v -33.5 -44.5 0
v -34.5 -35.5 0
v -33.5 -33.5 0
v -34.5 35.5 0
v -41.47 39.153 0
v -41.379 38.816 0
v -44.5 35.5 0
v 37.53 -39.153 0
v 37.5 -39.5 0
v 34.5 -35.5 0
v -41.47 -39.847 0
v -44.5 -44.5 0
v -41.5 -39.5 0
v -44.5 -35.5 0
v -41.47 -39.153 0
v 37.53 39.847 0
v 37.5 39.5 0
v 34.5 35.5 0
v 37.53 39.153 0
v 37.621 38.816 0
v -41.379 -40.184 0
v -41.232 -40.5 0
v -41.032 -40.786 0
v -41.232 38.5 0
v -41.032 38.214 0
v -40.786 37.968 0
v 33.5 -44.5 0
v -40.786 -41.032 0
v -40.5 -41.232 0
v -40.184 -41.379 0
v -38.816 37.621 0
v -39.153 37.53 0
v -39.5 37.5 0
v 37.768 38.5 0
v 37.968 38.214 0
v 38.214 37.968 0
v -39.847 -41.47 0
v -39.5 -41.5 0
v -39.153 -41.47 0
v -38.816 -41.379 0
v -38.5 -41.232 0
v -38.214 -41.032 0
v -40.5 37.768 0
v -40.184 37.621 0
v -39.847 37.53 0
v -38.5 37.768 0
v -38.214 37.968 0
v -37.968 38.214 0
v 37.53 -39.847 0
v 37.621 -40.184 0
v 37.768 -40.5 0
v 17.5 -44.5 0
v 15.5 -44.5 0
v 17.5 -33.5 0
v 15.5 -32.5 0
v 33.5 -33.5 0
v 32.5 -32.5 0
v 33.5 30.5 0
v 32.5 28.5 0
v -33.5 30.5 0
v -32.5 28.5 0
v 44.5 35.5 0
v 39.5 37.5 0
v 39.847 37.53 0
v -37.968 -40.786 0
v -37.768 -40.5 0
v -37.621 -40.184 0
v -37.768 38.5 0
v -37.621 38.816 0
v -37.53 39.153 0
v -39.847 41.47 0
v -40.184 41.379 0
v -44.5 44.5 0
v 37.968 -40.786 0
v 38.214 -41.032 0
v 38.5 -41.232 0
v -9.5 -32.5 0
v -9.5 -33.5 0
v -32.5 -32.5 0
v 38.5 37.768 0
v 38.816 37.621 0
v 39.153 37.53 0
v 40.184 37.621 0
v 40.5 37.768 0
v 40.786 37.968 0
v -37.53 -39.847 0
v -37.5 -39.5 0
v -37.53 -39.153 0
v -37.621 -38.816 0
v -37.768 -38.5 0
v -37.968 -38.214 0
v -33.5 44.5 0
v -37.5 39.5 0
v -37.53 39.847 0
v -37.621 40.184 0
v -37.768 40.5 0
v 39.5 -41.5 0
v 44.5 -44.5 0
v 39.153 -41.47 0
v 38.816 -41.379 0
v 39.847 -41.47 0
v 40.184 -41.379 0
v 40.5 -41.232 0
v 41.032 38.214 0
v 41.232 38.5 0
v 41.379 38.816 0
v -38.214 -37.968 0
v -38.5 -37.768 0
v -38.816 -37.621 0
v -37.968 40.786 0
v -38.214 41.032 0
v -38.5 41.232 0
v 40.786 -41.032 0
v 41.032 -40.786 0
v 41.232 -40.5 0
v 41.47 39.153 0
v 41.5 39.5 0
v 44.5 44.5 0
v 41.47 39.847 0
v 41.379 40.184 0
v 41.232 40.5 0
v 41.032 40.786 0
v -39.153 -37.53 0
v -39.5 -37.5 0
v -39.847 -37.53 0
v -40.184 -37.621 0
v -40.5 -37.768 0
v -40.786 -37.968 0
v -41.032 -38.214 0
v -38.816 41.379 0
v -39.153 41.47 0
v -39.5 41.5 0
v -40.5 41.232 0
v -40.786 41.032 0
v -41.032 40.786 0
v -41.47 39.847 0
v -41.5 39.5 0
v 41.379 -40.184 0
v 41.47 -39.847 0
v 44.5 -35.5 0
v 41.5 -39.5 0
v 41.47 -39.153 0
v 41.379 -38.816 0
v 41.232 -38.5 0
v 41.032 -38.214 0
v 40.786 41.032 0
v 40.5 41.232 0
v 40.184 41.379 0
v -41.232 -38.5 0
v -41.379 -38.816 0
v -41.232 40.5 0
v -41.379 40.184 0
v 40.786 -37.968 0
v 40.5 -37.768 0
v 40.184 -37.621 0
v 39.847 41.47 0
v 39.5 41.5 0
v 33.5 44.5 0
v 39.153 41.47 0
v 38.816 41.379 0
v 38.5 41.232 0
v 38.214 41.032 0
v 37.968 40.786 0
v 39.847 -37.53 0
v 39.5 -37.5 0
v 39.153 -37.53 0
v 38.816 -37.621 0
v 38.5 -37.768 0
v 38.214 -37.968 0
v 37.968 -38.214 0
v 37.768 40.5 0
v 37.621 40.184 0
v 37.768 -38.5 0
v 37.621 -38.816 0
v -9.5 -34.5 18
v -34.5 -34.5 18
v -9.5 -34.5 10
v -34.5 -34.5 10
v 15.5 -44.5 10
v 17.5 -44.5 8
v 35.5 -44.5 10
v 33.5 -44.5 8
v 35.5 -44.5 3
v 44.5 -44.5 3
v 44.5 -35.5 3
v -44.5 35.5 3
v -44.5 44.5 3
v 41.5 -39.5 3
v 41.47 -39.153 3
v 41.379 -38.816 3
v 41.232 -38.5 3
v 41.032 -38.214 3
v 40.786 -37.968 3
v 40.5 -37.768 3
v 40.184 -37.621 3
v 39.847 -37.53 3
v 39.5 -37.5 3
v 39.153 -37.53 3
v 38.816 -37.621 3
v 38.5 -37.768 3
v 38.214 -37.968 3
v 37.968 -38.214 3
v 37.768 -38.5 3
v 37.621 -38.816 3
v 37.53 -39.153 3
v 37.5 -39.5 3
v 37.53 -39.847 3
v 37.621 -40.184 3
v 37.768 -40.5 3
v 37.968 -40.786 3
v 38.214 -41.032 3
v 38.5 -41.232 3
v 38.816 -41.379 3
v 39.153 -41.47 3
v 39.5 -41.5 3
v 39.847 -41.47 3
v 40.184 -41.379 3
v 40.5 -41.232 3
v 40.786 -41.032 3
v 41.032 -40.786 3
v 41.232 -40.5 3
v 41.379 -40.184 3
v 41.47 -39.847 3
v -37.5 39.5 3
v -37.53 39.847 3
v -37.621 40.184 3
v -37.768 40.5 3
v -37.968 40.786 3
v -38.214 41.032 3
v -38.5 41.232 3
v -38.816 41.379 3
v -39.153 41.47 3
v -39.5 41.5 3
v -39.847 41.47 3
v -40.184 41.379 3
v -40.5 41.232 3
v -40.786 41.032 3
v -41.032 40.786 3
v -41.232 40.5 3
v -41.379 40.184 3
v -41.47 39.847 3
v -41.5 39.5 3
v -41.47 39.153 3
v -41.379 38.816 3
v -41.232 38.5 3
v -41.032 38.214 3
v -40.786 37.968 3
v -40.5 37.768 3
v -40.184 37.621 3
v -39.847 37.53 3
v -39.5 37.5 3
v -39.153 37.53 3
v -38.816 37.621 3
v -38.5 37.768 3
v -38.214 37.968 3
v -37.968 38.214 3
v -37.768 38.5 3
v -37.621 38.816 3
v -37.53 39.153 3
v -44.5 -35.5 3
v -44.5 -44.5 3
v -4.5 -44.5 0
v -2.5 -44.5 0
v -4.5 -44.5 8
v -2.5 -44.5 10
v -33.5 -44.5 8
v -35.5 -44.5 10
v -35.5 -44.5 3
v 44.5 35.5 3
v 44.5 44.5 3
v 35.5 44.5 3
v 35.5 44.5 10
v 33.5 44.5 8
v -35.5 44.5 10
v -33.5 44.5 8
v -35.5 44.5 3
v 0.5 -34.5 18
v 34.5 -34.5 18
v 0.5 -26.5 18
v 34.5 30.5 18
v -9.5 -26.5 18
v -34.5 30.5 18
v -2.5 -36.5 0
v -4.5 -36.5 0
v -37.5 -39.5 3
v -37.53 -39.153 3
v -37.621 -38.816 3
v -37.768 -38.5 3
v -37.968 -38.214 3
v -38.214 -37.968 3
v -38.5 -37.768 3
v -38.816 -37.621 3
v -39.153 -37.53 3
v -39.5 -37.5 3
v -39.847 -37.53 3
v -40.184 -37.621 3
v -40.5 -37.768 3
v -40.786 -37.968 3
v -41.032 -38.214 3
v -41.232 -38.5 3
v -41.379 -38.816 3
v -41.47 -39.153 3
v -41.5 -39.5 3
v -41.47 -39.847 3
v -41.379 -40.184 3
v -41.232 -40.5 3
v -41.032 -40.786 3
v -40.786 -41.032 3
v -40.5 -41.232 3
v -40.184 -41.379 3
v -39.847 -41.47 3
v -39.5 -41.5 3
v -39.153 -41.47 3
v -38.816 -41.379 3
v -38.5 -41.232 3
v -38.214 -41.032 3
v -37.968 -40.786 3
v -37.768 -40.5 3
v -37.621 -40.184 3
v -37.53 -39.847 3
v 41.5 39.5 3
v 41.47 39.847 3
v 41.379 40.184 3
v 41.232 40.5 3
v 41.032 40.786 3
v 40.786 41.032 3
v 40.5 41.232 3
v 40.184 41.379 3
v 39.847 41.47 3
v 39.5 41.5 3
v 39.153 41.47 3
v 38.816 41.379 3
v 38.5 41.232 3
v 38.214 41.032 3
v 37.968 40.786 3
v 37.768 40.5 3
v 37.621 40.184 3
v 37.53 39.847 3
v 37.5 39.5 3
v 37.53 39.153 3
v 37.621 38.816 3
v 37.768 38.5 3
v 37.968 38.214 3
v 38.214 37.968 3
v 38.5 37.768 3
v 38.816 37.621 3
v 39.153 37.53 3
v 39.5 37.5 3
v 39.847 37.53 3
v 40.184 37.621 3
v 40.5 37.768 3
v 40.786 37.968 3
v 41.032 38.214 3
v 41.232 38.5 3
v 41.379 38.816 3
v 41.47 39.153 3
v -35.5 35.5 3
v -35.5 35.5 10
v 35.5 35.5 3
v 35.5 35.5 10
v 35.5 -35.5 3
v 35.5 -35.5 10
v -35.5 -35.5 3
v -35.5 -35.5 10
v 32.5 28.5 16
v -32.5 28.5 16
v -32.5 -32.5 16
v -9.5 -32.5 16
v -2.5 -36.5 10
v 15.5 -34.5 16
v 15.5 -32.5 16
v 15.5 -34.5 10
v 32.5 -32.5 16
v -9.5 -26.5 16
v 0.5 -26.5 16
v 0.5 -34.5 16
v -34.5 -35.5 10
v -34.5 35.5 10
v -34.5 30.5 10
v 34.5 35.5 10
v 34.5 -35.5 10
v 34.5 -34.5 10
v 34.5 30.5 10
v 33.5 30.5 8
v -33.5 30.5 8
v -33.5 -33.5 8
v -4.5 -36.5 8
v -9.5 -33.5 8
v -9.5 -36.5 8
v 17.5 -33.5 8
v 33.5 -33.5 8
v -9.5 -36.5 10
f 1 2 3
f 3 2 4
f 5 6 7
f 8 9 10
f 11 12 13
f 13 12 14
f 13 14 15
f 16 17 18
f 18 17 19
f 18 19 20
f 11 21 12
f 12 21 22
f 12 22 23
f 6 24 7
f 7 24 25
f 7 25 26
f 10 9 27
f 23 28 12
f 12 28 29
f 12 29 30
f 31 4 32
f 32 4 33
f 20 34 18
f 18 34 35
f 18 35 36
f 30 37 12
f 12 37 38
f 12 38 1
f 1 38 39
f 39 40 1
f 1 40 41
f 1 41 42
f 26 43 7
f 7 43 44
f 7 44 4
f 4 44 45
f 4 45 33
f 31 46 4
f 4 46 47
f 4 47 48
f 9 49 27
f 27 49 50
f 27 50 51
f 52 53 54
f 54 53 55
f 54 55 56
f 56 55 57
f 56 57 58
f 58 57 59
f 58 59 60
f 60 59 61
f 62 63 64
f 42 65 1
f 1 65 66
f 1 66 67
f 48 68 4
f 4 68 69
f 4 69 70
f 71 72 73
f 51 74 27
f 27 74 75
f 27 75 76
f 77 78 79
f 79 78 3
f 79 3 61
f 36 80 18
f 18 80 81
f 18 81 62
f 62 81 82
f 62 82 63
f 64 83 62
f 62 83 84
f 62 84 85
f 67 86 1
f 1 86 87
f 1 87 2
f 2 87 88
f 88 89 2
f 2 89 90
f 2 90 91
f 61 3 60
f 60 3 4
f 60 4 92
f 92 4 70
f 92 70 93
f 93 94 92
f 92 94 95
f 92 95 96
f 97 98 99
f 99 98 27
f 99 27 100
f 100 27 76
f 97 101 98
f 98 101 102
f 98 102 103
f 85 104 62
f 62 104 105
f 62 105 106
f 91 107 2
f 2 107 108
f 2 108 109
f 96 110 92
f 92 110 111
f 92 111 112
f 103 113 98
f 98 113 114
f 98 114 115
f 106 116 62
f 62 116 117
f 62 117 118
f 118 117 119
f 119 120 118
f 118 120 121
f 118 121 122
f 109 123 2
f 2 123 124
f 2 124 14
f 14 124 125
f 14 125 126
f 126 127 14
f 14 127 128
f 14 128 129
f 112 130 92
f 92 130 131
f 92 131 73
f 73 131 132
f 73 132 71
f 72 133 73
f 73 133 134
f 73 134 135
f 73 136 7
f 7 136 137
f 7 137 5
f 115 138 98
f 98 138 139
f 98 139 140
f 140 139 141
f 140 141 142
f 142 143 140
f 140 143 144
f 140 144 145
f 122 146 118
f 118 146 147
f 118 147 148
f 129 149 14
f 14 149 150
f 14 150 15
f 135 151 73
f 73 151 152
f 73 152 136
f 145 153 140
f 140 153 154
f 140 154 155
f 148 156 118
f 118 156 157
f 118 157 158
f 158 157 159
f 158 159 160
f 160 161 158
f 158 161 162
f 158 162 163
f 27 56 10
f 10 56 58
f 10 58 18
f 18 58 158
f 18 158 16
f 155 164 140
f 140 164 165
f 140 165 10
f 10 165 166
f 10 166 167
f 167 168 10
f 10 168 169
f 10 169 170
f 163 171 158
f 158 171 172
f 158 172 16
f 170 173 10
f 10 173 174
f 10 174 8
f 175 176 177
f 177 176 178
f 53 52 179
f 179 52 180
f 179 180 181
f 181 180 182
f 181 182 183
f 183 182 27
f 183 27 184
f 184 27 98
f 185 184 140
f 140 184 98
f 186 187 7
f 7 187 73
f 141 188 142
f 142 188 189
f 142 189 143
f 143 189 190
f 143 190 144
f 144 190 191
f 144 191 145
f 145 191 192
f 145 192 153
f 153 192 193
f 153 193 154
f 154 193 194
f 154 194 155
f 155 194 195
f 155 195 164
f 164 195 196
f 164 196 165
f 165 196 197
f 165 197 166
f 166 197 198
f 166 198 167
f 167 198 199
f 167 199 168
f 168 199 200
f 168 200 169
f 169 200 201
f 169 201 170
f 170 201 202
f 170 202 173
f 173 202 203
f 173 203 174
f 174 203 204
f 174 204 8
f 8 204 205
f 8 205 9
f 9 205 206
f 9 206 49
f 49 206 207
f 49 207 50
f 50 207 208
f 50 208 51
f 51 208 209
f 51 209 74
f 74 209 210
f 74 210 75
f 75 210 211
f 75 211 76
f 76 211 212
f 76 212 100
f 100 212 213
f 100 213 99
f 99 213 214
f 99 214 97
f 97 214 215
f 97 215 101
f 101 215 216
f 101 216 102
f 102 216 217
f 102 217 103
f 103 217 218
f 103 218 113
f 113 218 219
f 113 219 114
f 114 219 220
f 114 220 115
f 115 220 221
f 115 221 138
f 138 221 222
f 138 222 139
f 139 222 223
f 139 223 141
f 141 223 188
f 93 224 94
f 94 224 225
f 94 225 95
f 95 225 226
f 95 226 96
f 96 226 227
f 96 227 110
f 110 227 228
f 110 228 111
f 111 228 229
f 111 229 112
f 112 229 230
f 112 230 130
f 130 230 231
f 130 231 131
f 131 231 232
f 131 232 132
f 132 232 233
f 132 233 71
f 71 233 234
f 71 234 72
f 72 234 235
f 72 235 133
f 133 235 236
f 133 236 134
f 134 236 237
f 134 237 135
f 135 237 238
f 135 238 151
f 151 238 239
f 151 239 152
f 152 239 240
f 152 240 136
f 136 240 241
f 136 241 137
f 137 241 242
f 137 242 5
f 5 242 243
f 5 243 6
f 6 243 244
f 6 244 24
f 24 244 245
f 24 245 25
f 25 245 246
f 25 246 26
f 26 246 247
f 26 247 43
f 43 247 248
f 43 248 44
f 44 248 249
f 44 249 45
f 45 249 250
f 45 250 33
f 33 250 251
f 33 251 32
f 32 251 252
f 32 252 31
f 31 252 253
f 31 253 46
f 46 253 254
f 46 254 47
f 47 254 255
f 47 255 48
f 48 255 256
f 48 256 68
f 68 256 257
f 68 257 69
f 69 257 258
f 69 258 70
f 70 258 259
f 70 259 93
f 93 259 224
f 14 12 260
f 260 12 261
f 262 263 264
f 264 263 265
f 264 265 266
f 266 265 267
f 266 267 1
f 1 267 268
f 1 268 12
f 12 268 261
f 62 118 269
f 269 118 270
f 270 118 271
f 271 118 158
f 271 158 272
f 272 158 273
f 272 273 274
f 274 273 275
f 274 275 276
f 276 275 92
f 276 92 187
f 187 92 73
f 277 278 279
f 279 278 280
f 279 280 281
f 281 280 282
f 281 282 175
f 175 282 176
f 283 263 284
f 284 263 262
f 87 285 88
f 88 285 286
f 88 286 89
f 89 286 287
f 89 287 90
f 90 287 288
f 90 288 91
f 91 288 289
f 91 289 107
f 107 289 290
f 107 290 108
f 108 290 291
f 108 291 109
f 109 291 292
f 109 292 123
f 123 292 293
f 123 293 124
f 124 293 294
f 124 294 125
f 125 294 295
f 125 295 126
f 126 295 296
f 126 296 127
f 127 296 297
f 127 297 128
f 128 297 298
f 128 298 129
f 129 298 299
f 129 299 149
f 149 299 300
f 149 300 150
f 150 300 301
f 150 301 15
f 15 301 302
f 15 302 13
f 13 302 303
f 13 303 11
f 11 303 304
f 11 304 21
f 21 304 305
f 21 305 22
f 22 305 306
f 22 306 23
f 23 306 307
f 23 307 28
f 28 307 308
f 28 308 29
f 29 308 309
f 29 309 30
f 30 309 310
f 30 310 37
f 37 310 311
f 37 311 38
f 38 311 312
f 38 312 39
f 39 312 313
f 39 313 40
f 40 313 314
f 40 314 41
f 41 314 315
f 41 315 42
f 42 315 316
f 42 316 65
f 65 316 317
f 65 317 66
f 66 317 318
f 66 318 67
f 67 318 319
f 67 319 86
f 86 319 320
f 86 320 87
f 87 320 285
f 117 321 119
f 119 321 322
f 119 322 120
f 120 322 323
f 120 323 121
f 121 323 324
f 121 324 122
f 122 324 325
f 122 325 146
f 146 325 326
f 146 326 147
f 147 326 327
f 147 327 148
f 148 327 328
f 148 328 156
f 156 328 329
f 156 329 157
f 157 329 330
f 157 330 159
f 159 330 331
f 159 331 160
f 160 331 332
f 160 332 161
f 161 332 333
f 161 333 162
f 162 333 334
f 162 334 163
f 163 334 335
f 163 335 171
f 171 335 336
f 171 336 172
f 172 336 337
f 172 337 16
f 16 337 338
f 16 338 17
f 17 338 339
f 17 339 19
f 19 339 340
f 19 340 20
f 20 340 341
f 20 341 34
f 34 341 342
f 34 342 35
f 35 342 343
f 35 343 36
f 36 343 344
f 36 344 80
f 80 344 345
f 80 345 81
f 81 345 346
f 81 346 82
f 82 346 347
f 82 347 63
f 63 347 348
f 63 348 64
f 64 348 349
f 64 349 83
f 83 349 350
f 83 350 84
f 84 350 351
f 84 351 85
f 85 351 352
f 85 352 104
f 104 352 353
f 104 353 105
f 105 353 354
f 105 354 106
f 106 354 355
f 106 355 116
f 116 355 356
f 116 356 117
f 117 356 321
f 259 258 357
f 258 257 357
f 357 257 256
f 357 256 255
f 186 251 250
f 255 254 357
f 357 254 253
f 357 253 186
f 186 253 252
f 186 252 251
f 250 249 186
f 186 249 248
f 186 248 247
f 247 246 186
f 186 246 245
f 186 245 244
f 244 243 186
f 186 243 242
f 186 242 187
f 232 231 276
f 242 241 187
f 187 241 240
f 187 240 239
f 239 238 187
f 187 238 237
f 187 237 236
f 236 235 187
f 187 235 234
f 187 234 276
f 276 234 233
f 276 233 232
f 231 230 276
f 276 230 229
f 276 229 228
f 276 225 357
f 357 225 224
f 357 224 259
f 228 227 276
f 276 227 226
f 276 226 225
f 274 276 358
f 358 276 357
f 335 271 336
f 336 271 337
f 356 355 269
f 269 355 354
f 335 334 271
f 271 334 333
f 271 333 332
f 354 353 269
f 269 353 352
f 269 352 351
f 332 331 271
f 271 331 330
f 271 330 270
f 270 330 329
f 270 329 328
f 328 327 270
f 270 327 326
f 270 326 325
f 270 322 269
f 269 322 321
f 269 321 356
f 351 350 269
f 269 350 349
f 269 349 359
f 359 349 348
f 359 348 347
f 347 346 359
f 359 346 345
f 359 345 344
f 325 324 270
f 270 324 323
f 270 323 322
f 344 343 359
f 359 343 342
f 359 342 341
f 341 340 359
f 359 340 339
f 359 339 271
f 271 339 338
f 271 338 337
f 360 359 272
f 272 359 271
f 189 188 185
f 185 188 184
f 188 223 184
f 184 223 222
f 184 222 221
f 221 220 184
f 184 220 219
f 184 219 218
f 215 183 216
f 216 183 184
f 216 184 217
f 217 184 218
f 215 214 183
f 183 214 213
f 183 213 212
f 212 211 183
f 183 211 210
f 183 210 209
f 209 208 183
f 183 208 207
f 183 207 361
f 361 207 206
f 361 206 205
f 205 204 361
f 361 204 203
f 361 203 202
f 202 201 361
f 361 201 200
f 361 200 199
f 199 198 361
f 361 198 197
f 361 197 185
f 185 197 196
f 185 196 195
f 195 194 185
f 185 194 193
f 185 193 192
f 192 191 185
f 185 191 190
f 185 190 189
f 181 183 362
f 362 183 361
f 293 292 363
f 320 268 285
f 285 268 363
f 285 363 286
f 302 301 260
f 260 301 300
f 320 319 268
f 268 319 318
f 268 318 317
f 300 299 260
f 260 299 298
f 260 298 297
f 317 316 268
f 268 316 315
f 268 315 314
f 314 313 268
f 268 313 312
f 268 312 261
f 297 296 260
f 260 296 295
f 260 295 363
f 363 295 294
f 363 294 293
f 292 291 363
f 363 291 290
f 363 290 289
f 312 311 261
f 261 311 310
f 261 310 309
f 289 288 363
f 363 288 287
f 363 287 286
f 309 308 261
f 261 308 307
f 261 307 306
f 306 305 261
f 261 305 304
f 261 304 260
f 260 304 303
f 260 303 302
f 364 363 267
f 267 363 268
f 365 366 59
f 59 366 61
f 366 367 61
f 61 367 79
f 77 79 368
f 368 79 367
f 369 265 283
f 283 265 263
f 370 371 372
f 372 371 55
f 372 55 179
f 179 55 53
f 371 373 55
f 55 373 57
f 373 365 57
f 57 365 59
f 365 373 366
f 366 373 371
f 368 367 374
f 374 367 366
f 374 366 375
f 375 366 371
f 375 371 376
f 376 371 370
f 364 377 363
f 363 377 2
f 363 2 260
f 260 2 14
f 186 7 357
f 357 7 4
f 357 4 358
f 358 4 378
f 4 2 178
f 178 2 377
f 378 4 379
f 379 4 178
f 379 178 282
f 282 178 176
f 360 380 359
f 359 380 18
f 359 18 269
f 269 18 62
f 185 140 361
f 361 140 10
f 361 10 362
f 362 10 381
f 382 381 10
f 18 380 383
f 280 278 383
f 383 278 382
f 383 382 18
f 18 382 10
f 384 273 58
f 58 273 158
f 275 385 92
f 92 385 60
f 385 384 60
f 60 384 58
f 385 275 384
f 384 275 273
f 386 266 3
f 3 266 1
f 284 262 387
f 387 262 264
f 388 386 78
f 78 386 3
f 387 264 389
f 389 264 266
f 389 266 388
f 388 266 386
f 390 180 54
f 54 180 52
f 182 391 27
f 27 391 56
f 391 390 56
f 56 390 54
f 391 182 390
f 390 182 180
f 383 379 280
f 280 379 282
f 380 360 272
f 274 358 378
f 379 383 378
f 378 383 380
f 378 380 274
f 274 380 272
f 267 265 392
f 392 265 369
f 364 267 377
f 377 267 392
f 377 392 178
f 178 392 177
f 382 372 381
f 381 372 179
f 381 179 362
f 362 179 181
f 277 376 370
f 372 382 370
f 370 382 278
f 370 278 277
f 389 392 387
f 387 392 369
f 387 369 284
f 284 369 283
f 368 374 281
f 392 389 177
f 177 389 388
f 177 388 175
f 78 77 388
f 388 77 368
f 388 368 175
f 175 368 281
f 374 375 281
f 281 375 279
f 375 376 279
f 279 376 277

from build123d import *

# Parameters (mm, degrees)
ESQUISSE1_W                  = 89
ESQUISSE1_H                  = 89
MAIN_EXTRUSION_DEPTH         = 18
ESQUISSE2_R                  = 2
FIXATION_HOLE_DEPTH          = 19
ESQUISSE3_W                  = 9
ESQUISSE3_H                  = 9
FIXATION_SQUARE_DEPTH        = 15
CPU_RJ11_DEPTH               = 16
ESQUISSE5_W                  = 10
ESQUISSE5_H                  = 71
ENL_V_MAT_EXTRU_4_DEPTH      = 19
ESQUISSE6_W                  = 67
ESQUISSE6_H                  = 14
ESQUISSE6_W_2                = 16
ESQUISSE6_H_2                = 11
ESQUISSE6_W_3                = 29
HE10_CONNECTORS_DEPTH        = 8
ESQUISSE7_W                  = 8
ESQUISSE7_H                  = 14
ESQUISSE7_H_2                = 10
HE10_CONNECTORS_TOP_DEPTH    = 81
ESQUISSE9_W                  = 10
ESQUISSE9_H                  = 10
ENL_V_MAT_EXTRU_7_DEPTH      = 1
ENL_V_MAT_EXTRU_7_DEPTH_BACK = 19


with BuildPart() as part:
    # Esquisse1 → Main Extrusion (new body)
    with BuildSketch(Plane.XY):
        Rectangle(ESQUISSE1_W, ESQUISSE1_H)
    extrude(amount=MAIN_EXTRUSION_DEPTH)

    # Esquisse2 → Fixation Hole (cut, through all)
    with BuildSketch(Plane.XY.offset(18)):
        with Locations((-39.5, 39.5)):
            Circle(ESQUISSE2_R)
        with Locations((39.5, 39.5)):
            Circle(ESQUISSE2_R)
        with Locations((39.5, -39.5)):
            Circle(ESQUISSE2_R)
        with Locations((-39.5, -39.5)):
            Circle(ESQUISSE2_R)
    extrude(amount=-FIXATION_HOLE_DEPTH, mode=Mode.SUBTRACT)

    # Esquisse3 → Fixation Square (cut)
    with BuildSketch(Plane.XY.offset(18)):
        with Locations((-40, 40)):
            Rectangle(ESQUISSE3_W, ESQUISSE3_H)
        with Locations((-40, -40)):
            Rectangle(ESQUISSE3_W, ESQUISSE3_H)
        with Locations((40, -40)):
            Rectangle(ESQUISSE3_W, ESQUISSE3_H)
        with Locations((40, 40)):
            Rectangle(ESQUISSE3_W, ESQUISSE3_H)
    extrude(amount=-FIXATION_SQUARE_DEPTH, mode=Mode.SUBTRACT)

    # Esquisse4 → CPU + RJ11 (cut)
    with BuildSketch(Plane(origin=(0, 0, 0), x_dir=(-1, 0, 0), z_dir=(0, 0, -1))):
        Polygon((-32.5, -32.5), (-15.5, -32.5), (-15.5, -44.5), (2.5, -44.5), (2.5, -32.5), (32.5, -32.5), (32.5, 28.5), (-32.5, 28.5), align=None)
    extrude(amount=-CPU_RJ11_DEPTH, mode=Mode.SUBTRACT)

    # Esquisse5 → Enlèv. mat.-Extru.4 (cut, through all)
    with BuildSketch(Plane.XY.offset(18)):
        with Locations((-39.5, 0)):
            Rectangle(ESQUISSE5_W, ESQUISSE5_H)
        with Locations((39.5, 0)):
            Rectangle(ESQUISSE5_W, ESQUISSE5_H)
    extrude(amount=-ENL_V_MAT_EXTRU_4_DEPTH, mode=Mode.SUBTRACT)

    # Esquisse6 → HE10 Connectors (cut)
    with BuildSketch(Plane(origin=(0, 0, 0), x_dir=(-1, 0, 0), z_dir=(0, 0, -1))):
        with Locations((0, 37.5)):
            Rectangle(ESQUISSE6_W, ESQUISSE6_H)
        with Locations((-25.5, -39)):
            Rectangle(ESQUISSE6_W_2, ESQUISSE6_H_2)
        with Locations((19, -39)):
            Rectangle(ESQUISSE6_W_3, ESQUISSE6_H_2)
    extrude(amount=-HE10_CONNECTORS_DEPTH, mode=Mode.SUBTRACT)

    # Esquisse7 → HE10 Connectors Top (cut, through all)
    with BuildSketch(Plane.ZY.offset(35.5)):
        with Locations((14, 37.5)):
            Rectangle(ESQUISSE7_W, ESQUISSE7_H)
        with Locations((14, -39.5)):
            Rectangle(ESQUISSE7_W, ESQUISSE7_H_2)
    extrude(amount=-HE10_CONNECTORS_TOP_DEPTH, mode=Mode.SUBTRACT)

    # Esquisse9 → Enlèv. mat.-Extru.7 (cut, two sides)
    with BuildSketch(Plane.XY.offset(18)) as enl_v_mat_extru_7_sk:
        with Locations((-4.5, -31.5)):
            Rectangle(ESQUISSE9_W, ESQUISSE9_H)
    extrude(amount=ENL_V_MAT_EXTRU_7_DEPTH, mode=Mode.SUBTRACT)
    extrude(enl_v_mat_extru_7_sk.sketch, amount=-ENL_V_MAT_EXTRU_7_DEPTH_BACK, mode=Mode.SUBTRACT)


solid = part.part
